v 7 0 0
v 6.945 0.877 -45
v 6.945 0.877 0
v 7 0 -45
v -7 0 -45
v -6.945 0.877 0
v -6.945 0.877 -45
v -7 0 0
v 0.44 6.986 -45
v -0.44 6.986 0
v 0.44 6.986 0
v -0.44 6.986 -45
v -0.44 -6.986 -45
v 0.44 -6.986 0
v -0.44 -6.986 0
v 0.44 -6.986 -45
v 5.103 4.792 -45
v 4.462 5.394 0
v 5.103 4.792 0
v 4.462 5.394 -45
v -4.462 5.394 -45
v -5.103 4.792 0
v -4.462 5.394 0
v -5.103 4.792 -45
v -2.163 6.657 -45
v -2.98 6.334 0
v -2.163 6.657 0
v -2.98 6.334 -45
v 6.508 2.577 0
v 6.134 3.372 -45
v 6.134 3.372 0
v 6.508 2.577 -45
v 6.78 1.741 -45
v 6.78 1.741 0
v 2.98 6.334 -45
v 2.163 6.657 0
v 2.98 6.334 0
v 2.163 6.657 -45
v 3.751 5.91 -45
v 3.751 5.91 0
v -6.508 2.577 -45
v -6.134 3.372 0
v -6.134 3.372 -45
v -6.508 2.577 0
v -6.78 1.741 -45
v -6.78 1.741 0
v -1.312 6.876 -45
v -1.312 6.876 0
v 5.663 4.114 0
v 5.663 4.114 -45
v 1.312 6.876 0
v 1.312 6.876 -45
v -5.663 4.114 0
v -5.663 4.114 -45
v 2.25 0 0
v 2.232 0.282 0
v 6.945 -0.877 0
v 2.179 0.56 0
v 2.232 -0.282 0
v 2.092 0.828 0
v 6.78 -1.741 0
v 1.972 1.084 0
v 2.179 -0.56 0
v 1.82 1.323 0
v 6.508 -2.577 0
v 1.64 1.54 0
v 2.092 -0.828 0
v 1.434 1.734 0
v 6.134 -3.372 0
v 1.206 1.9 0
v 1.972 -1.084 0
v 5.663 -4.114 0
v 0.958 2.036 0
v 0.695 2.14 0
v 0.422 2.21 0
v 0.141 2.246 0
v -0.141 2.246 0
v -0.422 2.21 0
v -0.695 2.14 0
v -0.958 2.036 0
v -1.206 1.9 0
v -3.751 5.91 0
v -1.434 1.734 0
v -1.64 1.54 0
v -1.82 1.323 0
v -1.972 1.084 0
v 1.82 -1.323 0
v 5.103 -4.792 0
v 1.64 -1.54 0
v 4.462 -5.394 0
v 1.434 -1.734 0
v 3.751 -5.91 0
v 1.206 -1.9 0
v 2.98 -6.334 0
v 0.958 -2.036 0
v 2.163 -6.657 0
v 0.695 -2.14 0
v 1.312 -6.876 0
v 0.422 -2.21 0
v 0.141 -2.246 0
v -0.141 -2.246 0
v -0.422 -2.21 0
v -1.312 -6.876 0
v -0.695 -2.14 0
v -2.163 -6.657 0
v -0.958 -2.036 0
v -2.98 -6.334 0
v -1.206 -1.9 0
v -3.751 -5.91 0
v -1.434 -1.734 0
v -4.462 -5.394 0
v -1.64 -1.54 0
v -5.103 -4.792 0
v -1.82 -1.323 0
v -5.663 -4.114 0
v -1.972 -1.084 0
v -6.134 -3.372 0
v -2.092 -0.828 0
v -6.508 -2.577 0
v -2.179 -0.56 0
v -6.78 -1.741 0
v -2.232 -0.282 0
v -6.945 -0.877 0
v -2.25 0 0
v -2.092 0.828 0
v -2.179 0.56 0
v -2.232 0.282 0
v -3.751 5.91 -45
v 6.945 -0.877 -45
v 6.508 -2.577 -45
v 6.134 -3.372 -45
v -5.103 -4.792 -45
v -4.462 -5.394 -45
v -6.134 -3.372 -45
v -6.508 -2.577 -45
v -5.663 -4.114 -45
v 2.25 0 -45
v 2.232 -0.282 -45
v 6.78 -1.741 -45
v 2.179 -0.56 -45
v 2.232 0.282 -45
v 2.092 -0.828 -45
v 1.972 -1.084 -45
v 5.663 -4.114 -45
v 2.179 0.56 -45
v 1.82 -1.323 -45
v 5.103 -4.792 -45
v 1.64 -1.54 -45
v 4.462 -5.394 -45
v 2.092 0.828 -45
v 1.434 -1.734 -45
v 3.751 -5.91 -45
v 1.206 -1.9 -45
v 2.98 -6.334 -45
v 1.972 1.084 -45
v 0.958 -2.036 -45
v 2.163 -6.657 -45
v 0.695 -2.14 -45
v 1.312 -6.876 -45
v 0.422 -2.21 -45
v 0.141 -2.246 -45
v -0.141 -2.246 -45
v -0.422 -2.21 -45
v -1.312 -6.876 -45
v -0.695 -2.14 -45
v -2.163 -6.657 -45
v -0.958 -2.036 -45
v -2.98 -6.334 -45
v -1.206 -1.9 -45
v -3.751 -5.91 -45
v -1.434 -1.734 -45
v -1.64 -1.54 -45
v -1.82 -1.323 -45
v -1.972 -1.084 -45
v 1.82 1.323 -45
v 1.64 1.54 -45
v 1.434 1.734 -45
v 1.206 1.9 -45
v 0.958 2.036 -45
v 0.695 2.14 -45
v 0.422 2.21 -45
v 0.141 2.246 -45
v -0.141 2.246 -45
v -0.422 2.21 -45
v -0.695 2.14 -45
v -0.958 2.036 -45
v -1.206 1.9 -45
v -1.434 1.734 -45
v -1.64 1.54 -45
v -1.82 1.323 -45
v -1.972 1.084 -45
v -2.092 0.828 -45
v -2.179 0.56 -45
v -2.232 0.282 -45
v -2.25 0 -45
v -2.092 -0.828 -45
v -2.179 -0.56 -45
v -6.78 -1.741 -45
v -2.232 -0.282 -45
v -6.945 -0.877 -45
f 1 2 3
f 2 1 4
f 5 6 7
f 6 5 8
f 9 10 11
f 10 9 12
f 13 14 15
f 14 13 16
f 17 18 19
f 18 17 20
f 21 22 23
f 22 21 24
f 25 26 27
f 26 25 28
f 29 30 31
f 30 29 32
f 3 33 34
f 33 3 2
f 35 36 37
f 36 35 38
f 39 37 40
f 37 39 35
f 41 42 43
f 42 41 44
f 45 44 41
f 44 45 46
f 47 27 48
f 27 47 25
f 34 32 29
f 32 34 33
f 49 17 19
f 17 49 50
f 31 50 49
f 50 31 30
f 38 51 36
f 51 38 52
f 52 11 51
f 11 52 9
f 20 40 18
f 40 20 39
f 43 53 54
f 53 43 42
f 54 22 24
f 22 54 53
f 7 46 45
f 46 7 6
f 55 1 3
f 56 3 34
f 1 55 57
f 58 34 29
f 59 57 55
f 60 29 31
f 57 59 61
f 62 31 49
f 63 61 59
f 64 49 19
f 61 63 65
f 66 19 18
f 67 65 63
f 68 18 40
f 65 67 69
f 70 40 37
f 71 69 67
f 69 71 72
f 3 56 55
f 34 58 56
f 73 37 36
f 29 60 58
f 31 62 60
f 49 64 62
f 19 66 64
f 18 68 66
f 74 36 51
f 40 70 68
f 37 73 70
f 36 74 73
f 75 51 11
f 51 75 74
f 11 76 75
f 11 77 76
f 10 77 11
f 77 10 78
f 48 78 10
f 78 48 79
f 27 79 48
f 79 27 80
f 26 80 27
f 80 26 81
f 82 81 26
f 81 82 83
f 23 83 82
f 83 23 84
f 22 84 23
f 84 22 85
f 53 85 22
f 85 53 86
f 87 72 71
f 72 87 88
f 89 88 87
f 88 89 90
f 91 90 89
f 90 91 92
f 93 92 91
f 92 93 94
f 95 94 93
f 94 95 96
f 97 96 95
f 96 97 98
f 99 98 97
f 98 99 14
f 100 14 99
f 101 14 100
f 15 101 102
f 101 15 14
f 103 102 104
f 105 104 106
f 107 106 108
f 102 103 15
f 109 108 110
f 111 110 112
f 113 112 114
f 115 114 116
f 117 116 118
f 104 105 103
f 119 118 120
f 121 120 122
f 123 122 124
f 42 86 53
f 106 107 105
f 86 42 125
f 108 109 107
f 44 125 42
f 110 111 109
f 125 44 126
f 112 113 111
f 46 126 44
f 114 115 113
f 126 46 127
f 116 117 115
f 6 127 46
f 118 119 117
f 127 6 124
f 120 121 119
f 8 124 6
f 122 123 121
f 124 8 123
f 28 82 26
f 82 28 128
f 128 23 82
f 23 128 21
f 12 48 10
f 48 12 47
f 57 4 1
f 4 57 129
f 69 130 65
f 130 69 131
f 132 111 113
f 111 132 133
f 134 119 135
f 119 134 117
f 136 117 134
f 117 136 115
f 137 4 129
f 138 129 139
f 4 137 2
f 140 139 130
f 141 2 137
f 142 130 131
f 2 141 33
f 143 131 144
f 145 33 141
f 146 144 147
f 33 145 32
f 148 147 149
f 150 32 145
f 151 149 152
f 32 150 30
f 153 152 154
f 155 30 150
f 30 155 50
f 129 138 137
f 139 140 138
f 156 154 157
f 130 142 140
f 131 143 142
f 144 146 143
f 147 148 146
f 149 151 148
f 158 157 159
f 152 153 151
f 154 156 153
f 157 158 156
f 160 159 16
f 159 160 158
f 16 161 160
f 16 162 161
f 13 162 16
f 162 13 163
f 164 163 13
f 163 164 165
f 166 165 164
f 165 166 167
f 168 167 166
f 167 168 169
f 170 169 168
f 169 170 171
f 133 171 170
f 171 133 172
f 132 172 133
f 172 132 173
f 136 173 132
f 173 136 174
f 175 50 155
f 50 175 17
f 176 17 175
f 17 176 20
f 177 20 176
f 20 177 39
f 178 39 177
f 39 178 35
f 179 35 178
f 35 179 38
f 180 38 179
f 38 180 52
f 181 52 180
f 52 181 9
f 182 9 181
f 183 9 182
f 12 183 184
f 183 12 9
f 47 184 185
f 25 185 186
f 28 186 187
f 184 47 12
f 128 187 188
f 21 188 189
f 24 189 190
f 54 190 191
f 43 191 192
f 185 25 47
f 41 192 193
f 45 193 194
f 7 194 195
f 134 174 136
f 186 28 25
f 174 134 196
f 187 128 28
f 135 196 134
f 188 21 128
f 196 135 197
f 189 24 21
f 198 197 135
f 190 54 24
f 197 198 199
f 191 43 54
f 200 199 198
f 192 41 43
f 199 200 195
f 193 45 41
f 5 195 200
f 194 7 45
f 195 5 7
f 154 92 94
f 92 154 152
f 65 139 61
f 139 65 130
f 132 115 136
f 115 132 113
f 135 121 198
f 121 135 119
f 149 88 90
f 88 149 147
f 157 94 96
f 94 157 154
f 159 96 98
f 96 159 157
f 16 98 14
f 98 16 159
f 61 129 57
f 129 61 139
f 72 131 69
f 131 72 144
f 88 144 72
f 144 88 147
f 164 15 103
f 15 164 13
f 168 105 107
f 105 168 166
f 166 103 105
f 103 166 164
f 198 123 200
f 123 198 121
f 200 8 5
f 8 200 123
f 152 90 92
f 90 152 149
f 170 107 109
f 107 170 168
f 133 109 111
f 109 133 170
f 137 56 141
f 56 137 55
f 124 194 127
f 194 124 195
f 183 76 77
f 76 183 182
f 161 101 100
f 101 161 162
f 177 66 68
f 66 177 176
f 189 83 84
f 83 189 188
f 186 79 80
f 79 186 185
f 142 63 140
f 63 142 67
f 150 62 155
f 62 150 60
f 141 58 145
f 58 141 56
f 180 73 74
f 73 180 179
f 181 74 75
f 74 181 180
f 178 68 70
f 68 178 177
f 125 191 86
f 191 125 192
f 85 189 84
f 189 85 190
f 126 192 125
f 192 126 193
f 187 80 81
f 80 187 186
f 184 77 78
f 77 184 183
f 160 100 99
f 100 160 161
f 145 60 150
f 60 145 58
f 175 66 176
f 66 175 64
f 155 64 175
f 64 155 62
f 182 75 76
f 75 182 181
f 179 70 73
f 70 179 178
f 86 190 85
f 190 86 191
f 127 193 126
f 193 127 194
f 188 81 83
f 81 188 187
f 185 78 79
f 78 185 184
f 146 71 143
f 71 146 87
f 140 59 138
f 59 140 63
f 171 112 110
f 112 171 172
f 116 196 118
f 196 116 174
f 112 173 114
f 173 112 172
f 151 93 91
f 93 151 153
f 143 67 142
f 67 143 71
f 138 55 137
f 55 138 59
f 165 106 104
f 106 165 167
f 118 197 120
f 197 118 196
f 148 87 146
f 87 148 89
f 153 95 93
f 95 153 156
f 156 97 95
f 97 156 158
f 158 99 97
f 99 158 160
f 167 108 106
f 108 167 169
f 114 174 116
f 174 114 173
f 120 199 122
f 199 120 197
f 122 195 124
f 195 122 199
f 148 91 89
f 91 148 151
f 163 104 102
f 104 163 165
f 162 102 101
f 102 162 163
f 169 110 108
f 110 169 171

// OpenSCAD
$fn = 50;


difference() {
	union() {
		translate(v = [0, 0, -45.0000000000]) {
			cylinder(h = 45, r = 7.0000000000);
		}
		cylinder(h = 0, r = 17.0000000000);
	}
	union() {
		#translate(v = [0, 0, -45]) {
			cylinder(h = 45, r = 2.2500000000);
		}
	}
}
